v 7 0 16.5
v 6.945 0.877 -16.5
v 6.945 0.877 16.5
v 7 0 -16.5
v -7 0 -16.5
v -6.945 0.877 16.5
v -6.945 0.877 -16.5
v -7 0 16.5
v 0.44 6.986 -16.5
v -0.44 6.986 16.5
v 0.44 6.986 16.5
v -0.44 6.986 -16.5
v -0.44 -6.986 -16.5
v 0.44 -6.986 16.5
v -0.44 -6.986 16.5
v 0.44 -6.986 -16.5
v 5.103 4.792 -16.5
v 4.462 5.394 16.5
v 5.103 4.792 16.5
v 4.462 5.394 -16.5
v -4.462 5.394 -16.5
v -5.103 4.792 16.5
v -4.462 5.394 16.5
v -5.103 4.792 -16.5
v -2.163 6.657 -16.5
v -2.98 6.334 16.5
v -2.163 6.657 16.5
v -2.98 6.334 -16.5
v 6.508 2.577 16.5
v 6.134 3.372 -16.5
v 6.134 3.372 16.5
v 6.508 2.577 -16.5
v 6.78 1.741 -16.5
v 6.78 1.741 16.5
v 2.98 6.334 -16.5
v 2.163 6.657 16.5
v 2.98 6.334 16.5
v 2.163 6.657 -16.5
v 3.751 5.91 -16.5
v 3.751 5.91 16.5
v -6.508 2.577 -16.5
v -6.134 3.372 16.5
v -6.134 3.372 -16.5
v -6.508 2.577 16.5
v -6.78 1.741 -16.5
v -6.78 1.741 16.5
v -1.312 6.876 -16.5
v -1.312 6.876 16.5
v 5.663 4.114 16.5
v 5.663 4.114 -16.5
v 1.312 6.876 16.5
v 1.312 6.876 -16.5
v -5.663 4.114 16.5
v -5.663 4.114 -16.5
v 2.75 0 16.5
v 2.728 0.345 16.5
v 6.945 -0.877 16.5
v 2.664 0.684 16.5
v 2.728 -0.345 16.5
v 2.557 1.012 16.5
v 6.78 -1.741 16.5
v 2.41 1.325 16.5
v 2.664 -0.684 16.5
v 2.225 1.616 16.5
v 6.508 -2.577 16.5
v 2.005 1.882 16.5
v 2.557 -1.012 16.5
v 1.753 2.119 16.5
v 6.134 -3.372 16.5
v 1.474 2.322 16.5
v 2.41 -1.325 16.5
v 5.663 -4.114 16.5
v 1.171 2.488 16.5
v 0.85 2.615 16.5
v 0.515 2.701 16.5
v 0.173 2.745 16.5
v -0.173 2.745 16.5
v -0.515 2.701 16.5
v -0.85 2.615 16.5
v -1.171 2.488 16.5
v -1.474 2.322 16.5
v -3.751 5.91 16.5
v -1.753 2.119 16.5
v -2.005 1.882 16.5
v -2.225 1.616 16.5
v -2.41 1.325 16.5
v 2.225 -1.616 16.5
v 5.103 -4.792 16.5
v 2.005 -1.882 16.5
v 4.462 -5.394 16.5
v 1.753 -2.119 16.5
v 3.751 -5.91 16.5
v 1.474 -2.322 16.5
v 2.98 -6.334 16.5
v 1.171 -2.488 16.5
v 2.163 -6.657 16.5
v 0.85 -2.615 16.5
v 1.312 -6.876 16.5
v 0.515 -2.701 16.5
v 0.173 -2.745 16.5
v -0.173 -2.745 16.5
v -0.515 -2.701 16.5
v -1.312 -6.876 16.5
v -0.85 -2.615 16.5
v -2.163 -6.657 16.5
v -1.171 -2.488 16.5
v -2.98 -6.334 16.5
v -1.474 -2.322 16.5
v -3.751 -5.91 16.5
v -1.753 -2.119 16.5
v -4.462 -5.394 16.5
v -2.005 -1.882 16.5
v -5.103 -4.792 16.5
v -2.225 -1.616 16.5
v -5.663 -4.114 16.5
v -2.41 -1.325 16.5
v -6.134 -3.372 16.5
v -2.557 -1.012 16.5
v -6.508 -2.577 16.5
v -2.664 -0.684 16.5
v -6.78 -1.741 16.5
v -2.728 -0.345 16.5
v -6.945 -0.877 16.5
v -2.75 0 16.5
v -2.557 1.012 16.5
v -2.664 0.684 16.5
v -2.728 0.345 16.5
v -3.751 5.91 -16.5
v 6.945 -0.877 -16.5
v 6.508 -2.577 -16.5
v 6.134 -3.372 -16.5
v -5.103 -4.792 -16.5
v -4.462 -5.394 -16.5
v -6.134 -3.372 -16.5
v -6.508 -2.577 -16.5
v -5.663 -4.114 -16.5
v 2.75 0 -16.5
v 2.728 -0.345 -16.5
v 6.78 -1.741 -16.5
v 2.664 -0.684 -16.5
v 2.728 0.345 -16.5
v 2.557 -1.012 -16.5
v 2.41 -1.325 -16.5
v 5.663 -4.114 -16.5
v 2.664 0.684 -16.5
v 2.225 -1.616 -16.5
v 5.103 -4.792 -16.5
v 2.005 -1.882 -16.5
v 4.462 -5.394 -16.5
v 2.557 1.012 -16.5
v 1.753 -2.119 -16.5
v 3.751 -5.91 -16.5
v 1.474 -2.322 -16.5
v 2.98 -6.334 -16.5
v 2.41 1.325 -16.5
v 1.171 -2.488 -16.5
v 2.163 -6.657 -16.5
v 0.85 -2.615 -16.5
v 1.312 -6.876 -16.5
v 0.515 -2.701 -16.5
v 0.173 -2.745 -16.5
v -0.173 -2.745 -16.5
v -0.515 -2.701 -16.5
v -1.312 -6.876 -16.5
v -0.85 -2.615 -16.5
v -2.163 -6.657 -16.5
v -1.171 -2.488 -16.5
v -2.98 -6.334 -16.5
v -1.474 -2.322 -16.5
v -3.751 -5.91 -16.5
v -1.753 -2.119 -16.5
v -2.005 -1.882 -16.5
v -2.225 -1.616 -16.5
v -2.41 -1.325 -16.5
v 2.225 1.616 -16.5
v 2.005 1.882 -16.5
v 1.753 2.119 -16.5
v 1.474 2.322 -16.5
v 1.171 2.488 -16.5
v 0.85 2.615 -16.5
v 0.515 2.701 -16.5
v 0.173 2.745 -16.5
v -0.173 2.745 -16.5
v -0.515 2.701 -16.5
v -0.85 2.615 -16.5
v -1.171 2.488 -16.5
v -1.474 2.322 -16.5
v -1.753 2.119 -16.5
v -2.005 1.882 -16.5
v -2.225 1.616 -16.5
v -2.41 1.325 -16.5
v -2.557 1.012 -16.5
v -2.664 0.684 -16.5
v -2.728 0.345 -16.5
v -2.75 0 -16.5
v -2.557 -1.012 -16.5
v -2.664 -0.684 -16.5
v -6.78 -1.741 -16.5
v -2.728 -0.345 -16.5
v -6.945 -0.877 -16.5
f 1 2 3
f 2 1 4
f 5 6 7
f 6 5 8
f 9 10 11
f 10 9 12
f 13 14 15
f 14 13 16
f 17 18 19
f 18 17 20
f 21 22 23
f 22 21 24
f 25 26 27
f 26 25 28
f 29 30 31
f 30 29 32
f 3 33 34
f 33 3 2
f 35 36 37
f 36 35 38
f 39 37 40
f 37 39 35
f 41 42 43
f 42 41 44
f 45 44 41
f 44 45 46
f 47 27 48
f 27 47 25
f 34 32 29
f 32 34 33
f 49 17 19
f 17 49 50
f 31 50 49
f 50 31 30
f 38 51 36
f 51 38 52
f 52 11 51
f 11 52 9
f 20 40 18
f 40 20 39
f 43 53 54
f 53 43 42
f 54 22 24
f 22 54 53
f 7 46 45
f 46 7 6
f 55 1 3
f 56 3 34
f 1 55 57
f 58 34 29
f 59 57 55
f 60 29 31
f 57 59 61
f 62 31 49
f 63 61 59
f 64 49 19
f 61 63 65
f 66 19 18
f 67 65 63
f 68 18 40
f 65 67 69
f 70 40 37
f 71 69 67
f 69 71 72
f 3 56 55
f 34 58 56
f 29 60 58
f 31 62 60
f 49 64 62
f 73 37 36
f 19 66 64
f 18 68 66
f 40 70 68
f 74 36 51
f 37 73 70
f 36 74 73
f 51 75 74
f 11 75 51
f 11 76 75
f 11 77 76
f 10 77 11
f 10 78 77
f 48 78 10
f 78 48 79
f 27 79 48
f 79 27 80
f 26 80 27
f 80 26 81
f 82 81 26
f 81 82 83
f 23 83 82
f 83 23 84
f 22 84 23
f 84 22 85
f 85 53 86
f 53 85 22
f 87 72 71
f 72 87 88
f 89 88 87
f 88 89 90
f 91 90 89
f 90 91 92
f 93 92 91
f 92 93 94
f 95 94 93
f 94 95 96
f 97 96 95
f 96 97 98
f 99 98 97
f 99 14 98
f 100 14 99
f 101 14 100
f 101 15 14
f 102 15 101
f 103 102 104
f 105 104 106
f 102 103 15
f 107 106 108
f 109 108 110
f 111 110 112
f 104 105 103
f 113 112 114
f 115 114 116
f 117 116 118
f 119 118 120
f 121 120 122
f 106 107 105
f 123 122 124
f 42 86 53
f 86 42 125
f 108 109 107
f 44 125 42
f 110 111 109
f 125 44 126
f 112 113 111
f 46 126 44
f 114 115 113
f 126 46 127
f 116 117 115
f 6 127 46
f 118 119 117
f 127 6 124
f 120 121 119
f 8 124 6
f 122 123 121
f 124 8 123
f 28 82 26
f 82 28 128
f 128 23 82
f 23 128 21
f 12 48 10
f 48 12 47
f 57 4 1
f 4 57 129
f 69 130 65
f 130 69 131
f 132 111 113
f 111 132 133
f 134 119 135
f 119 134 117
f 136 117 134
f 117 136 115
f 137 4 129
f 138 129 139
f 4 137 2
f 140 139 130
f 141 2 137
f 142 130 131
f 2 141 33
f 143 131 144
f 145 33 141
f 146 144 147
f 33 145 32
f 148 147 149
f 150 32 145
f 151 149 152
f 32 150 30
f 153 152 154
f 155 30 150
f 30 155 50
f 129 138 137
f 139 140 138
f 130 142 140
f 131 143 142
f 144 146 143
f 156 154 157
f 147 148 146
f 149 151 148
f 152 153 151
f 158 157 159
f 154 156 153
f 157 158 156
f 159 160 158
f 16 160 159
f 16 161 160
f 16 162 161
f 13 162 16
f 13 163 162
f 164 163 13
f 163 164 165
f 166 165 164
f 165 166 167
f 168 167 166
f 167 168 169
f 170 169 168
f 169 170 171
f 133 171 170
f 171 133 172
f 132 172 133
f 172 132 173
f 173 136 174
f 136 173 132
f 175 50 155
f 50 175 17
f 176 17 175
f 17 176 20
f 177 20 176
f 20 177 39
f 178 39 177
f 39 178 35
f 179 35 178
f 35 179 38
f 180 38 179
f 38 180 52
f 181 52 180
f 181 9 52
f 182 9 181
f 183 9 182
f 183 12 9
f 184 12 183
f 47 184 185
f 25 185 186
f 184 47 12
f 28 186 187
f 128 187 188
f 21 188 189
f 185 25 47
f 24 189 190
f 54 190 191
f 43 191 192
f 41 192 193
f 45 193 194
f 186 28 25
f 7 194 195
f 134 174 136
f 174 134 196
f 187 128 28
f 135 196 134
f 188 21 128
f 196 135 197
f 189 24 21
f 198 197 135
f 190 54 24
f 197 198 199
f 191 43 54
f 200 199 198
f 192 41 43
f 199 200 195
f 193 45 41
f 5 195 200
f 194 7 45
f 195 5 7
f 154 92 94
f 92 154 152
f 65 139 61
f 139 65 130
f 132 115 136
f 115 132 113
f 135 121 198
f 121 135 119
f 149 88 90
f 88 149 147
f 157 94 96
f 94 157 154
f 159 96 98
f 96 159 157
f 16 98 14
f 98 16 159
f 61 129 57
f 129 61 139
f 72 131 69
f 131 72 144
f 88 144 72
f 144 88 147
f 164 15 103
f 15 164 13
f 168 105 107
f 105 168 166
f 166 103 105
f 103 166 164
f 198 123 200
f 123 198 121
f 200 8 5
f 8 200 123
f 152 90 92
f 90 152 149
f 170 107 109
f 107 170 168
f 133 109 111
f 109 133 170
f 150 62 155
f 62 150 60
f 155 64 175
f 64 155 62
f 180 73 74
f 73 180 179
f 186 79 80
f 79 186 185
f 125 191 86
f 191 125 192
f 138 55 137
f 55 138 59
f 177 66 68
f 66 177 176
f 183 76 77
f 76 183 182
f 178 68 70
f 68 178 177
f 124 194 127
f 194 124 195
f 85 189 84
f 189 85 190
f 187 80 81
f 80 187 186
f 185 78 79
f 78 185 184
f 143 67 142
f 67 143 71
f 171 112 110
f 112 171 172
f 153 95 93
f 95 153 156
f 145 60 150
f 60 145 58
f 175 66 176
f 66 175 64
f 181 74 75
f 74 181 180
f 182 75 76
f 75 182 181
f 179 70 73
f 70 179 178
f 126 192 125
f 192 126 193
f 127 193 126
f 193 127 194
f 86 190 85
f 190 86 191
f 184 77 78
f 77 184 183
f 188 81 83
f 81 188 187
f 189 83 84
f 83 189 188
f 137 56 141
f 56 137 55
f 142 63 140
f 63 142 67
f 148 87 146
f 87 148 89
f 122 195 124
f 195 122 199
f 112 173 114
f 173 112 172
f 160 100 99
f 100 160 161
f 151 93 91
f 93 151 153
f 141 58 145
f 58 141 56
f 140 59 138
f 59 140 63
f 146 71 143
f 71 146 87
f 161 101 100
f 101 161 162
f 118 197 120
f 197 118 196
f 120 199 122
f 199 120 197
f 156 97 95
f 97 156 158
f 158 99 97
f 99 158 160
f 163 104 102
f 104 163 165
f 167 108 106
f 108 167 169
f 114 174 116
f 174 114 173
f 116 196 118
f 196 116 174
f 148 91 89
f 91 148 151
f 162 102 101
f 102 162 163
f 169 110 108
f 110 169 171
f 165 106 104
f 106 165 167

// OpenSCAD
$fn = 50;


difference() {
	union() {
		translate(v = [0, 0, -16.5000000000]) {
			cylinder(h = 33, r = 7.0000000000);
		}
	}
	union() {
		translate(v = [0, 0, -100.0000000000]) {
			cylinder(h = 200, r = 2.7500000000);
		}
	}
}
